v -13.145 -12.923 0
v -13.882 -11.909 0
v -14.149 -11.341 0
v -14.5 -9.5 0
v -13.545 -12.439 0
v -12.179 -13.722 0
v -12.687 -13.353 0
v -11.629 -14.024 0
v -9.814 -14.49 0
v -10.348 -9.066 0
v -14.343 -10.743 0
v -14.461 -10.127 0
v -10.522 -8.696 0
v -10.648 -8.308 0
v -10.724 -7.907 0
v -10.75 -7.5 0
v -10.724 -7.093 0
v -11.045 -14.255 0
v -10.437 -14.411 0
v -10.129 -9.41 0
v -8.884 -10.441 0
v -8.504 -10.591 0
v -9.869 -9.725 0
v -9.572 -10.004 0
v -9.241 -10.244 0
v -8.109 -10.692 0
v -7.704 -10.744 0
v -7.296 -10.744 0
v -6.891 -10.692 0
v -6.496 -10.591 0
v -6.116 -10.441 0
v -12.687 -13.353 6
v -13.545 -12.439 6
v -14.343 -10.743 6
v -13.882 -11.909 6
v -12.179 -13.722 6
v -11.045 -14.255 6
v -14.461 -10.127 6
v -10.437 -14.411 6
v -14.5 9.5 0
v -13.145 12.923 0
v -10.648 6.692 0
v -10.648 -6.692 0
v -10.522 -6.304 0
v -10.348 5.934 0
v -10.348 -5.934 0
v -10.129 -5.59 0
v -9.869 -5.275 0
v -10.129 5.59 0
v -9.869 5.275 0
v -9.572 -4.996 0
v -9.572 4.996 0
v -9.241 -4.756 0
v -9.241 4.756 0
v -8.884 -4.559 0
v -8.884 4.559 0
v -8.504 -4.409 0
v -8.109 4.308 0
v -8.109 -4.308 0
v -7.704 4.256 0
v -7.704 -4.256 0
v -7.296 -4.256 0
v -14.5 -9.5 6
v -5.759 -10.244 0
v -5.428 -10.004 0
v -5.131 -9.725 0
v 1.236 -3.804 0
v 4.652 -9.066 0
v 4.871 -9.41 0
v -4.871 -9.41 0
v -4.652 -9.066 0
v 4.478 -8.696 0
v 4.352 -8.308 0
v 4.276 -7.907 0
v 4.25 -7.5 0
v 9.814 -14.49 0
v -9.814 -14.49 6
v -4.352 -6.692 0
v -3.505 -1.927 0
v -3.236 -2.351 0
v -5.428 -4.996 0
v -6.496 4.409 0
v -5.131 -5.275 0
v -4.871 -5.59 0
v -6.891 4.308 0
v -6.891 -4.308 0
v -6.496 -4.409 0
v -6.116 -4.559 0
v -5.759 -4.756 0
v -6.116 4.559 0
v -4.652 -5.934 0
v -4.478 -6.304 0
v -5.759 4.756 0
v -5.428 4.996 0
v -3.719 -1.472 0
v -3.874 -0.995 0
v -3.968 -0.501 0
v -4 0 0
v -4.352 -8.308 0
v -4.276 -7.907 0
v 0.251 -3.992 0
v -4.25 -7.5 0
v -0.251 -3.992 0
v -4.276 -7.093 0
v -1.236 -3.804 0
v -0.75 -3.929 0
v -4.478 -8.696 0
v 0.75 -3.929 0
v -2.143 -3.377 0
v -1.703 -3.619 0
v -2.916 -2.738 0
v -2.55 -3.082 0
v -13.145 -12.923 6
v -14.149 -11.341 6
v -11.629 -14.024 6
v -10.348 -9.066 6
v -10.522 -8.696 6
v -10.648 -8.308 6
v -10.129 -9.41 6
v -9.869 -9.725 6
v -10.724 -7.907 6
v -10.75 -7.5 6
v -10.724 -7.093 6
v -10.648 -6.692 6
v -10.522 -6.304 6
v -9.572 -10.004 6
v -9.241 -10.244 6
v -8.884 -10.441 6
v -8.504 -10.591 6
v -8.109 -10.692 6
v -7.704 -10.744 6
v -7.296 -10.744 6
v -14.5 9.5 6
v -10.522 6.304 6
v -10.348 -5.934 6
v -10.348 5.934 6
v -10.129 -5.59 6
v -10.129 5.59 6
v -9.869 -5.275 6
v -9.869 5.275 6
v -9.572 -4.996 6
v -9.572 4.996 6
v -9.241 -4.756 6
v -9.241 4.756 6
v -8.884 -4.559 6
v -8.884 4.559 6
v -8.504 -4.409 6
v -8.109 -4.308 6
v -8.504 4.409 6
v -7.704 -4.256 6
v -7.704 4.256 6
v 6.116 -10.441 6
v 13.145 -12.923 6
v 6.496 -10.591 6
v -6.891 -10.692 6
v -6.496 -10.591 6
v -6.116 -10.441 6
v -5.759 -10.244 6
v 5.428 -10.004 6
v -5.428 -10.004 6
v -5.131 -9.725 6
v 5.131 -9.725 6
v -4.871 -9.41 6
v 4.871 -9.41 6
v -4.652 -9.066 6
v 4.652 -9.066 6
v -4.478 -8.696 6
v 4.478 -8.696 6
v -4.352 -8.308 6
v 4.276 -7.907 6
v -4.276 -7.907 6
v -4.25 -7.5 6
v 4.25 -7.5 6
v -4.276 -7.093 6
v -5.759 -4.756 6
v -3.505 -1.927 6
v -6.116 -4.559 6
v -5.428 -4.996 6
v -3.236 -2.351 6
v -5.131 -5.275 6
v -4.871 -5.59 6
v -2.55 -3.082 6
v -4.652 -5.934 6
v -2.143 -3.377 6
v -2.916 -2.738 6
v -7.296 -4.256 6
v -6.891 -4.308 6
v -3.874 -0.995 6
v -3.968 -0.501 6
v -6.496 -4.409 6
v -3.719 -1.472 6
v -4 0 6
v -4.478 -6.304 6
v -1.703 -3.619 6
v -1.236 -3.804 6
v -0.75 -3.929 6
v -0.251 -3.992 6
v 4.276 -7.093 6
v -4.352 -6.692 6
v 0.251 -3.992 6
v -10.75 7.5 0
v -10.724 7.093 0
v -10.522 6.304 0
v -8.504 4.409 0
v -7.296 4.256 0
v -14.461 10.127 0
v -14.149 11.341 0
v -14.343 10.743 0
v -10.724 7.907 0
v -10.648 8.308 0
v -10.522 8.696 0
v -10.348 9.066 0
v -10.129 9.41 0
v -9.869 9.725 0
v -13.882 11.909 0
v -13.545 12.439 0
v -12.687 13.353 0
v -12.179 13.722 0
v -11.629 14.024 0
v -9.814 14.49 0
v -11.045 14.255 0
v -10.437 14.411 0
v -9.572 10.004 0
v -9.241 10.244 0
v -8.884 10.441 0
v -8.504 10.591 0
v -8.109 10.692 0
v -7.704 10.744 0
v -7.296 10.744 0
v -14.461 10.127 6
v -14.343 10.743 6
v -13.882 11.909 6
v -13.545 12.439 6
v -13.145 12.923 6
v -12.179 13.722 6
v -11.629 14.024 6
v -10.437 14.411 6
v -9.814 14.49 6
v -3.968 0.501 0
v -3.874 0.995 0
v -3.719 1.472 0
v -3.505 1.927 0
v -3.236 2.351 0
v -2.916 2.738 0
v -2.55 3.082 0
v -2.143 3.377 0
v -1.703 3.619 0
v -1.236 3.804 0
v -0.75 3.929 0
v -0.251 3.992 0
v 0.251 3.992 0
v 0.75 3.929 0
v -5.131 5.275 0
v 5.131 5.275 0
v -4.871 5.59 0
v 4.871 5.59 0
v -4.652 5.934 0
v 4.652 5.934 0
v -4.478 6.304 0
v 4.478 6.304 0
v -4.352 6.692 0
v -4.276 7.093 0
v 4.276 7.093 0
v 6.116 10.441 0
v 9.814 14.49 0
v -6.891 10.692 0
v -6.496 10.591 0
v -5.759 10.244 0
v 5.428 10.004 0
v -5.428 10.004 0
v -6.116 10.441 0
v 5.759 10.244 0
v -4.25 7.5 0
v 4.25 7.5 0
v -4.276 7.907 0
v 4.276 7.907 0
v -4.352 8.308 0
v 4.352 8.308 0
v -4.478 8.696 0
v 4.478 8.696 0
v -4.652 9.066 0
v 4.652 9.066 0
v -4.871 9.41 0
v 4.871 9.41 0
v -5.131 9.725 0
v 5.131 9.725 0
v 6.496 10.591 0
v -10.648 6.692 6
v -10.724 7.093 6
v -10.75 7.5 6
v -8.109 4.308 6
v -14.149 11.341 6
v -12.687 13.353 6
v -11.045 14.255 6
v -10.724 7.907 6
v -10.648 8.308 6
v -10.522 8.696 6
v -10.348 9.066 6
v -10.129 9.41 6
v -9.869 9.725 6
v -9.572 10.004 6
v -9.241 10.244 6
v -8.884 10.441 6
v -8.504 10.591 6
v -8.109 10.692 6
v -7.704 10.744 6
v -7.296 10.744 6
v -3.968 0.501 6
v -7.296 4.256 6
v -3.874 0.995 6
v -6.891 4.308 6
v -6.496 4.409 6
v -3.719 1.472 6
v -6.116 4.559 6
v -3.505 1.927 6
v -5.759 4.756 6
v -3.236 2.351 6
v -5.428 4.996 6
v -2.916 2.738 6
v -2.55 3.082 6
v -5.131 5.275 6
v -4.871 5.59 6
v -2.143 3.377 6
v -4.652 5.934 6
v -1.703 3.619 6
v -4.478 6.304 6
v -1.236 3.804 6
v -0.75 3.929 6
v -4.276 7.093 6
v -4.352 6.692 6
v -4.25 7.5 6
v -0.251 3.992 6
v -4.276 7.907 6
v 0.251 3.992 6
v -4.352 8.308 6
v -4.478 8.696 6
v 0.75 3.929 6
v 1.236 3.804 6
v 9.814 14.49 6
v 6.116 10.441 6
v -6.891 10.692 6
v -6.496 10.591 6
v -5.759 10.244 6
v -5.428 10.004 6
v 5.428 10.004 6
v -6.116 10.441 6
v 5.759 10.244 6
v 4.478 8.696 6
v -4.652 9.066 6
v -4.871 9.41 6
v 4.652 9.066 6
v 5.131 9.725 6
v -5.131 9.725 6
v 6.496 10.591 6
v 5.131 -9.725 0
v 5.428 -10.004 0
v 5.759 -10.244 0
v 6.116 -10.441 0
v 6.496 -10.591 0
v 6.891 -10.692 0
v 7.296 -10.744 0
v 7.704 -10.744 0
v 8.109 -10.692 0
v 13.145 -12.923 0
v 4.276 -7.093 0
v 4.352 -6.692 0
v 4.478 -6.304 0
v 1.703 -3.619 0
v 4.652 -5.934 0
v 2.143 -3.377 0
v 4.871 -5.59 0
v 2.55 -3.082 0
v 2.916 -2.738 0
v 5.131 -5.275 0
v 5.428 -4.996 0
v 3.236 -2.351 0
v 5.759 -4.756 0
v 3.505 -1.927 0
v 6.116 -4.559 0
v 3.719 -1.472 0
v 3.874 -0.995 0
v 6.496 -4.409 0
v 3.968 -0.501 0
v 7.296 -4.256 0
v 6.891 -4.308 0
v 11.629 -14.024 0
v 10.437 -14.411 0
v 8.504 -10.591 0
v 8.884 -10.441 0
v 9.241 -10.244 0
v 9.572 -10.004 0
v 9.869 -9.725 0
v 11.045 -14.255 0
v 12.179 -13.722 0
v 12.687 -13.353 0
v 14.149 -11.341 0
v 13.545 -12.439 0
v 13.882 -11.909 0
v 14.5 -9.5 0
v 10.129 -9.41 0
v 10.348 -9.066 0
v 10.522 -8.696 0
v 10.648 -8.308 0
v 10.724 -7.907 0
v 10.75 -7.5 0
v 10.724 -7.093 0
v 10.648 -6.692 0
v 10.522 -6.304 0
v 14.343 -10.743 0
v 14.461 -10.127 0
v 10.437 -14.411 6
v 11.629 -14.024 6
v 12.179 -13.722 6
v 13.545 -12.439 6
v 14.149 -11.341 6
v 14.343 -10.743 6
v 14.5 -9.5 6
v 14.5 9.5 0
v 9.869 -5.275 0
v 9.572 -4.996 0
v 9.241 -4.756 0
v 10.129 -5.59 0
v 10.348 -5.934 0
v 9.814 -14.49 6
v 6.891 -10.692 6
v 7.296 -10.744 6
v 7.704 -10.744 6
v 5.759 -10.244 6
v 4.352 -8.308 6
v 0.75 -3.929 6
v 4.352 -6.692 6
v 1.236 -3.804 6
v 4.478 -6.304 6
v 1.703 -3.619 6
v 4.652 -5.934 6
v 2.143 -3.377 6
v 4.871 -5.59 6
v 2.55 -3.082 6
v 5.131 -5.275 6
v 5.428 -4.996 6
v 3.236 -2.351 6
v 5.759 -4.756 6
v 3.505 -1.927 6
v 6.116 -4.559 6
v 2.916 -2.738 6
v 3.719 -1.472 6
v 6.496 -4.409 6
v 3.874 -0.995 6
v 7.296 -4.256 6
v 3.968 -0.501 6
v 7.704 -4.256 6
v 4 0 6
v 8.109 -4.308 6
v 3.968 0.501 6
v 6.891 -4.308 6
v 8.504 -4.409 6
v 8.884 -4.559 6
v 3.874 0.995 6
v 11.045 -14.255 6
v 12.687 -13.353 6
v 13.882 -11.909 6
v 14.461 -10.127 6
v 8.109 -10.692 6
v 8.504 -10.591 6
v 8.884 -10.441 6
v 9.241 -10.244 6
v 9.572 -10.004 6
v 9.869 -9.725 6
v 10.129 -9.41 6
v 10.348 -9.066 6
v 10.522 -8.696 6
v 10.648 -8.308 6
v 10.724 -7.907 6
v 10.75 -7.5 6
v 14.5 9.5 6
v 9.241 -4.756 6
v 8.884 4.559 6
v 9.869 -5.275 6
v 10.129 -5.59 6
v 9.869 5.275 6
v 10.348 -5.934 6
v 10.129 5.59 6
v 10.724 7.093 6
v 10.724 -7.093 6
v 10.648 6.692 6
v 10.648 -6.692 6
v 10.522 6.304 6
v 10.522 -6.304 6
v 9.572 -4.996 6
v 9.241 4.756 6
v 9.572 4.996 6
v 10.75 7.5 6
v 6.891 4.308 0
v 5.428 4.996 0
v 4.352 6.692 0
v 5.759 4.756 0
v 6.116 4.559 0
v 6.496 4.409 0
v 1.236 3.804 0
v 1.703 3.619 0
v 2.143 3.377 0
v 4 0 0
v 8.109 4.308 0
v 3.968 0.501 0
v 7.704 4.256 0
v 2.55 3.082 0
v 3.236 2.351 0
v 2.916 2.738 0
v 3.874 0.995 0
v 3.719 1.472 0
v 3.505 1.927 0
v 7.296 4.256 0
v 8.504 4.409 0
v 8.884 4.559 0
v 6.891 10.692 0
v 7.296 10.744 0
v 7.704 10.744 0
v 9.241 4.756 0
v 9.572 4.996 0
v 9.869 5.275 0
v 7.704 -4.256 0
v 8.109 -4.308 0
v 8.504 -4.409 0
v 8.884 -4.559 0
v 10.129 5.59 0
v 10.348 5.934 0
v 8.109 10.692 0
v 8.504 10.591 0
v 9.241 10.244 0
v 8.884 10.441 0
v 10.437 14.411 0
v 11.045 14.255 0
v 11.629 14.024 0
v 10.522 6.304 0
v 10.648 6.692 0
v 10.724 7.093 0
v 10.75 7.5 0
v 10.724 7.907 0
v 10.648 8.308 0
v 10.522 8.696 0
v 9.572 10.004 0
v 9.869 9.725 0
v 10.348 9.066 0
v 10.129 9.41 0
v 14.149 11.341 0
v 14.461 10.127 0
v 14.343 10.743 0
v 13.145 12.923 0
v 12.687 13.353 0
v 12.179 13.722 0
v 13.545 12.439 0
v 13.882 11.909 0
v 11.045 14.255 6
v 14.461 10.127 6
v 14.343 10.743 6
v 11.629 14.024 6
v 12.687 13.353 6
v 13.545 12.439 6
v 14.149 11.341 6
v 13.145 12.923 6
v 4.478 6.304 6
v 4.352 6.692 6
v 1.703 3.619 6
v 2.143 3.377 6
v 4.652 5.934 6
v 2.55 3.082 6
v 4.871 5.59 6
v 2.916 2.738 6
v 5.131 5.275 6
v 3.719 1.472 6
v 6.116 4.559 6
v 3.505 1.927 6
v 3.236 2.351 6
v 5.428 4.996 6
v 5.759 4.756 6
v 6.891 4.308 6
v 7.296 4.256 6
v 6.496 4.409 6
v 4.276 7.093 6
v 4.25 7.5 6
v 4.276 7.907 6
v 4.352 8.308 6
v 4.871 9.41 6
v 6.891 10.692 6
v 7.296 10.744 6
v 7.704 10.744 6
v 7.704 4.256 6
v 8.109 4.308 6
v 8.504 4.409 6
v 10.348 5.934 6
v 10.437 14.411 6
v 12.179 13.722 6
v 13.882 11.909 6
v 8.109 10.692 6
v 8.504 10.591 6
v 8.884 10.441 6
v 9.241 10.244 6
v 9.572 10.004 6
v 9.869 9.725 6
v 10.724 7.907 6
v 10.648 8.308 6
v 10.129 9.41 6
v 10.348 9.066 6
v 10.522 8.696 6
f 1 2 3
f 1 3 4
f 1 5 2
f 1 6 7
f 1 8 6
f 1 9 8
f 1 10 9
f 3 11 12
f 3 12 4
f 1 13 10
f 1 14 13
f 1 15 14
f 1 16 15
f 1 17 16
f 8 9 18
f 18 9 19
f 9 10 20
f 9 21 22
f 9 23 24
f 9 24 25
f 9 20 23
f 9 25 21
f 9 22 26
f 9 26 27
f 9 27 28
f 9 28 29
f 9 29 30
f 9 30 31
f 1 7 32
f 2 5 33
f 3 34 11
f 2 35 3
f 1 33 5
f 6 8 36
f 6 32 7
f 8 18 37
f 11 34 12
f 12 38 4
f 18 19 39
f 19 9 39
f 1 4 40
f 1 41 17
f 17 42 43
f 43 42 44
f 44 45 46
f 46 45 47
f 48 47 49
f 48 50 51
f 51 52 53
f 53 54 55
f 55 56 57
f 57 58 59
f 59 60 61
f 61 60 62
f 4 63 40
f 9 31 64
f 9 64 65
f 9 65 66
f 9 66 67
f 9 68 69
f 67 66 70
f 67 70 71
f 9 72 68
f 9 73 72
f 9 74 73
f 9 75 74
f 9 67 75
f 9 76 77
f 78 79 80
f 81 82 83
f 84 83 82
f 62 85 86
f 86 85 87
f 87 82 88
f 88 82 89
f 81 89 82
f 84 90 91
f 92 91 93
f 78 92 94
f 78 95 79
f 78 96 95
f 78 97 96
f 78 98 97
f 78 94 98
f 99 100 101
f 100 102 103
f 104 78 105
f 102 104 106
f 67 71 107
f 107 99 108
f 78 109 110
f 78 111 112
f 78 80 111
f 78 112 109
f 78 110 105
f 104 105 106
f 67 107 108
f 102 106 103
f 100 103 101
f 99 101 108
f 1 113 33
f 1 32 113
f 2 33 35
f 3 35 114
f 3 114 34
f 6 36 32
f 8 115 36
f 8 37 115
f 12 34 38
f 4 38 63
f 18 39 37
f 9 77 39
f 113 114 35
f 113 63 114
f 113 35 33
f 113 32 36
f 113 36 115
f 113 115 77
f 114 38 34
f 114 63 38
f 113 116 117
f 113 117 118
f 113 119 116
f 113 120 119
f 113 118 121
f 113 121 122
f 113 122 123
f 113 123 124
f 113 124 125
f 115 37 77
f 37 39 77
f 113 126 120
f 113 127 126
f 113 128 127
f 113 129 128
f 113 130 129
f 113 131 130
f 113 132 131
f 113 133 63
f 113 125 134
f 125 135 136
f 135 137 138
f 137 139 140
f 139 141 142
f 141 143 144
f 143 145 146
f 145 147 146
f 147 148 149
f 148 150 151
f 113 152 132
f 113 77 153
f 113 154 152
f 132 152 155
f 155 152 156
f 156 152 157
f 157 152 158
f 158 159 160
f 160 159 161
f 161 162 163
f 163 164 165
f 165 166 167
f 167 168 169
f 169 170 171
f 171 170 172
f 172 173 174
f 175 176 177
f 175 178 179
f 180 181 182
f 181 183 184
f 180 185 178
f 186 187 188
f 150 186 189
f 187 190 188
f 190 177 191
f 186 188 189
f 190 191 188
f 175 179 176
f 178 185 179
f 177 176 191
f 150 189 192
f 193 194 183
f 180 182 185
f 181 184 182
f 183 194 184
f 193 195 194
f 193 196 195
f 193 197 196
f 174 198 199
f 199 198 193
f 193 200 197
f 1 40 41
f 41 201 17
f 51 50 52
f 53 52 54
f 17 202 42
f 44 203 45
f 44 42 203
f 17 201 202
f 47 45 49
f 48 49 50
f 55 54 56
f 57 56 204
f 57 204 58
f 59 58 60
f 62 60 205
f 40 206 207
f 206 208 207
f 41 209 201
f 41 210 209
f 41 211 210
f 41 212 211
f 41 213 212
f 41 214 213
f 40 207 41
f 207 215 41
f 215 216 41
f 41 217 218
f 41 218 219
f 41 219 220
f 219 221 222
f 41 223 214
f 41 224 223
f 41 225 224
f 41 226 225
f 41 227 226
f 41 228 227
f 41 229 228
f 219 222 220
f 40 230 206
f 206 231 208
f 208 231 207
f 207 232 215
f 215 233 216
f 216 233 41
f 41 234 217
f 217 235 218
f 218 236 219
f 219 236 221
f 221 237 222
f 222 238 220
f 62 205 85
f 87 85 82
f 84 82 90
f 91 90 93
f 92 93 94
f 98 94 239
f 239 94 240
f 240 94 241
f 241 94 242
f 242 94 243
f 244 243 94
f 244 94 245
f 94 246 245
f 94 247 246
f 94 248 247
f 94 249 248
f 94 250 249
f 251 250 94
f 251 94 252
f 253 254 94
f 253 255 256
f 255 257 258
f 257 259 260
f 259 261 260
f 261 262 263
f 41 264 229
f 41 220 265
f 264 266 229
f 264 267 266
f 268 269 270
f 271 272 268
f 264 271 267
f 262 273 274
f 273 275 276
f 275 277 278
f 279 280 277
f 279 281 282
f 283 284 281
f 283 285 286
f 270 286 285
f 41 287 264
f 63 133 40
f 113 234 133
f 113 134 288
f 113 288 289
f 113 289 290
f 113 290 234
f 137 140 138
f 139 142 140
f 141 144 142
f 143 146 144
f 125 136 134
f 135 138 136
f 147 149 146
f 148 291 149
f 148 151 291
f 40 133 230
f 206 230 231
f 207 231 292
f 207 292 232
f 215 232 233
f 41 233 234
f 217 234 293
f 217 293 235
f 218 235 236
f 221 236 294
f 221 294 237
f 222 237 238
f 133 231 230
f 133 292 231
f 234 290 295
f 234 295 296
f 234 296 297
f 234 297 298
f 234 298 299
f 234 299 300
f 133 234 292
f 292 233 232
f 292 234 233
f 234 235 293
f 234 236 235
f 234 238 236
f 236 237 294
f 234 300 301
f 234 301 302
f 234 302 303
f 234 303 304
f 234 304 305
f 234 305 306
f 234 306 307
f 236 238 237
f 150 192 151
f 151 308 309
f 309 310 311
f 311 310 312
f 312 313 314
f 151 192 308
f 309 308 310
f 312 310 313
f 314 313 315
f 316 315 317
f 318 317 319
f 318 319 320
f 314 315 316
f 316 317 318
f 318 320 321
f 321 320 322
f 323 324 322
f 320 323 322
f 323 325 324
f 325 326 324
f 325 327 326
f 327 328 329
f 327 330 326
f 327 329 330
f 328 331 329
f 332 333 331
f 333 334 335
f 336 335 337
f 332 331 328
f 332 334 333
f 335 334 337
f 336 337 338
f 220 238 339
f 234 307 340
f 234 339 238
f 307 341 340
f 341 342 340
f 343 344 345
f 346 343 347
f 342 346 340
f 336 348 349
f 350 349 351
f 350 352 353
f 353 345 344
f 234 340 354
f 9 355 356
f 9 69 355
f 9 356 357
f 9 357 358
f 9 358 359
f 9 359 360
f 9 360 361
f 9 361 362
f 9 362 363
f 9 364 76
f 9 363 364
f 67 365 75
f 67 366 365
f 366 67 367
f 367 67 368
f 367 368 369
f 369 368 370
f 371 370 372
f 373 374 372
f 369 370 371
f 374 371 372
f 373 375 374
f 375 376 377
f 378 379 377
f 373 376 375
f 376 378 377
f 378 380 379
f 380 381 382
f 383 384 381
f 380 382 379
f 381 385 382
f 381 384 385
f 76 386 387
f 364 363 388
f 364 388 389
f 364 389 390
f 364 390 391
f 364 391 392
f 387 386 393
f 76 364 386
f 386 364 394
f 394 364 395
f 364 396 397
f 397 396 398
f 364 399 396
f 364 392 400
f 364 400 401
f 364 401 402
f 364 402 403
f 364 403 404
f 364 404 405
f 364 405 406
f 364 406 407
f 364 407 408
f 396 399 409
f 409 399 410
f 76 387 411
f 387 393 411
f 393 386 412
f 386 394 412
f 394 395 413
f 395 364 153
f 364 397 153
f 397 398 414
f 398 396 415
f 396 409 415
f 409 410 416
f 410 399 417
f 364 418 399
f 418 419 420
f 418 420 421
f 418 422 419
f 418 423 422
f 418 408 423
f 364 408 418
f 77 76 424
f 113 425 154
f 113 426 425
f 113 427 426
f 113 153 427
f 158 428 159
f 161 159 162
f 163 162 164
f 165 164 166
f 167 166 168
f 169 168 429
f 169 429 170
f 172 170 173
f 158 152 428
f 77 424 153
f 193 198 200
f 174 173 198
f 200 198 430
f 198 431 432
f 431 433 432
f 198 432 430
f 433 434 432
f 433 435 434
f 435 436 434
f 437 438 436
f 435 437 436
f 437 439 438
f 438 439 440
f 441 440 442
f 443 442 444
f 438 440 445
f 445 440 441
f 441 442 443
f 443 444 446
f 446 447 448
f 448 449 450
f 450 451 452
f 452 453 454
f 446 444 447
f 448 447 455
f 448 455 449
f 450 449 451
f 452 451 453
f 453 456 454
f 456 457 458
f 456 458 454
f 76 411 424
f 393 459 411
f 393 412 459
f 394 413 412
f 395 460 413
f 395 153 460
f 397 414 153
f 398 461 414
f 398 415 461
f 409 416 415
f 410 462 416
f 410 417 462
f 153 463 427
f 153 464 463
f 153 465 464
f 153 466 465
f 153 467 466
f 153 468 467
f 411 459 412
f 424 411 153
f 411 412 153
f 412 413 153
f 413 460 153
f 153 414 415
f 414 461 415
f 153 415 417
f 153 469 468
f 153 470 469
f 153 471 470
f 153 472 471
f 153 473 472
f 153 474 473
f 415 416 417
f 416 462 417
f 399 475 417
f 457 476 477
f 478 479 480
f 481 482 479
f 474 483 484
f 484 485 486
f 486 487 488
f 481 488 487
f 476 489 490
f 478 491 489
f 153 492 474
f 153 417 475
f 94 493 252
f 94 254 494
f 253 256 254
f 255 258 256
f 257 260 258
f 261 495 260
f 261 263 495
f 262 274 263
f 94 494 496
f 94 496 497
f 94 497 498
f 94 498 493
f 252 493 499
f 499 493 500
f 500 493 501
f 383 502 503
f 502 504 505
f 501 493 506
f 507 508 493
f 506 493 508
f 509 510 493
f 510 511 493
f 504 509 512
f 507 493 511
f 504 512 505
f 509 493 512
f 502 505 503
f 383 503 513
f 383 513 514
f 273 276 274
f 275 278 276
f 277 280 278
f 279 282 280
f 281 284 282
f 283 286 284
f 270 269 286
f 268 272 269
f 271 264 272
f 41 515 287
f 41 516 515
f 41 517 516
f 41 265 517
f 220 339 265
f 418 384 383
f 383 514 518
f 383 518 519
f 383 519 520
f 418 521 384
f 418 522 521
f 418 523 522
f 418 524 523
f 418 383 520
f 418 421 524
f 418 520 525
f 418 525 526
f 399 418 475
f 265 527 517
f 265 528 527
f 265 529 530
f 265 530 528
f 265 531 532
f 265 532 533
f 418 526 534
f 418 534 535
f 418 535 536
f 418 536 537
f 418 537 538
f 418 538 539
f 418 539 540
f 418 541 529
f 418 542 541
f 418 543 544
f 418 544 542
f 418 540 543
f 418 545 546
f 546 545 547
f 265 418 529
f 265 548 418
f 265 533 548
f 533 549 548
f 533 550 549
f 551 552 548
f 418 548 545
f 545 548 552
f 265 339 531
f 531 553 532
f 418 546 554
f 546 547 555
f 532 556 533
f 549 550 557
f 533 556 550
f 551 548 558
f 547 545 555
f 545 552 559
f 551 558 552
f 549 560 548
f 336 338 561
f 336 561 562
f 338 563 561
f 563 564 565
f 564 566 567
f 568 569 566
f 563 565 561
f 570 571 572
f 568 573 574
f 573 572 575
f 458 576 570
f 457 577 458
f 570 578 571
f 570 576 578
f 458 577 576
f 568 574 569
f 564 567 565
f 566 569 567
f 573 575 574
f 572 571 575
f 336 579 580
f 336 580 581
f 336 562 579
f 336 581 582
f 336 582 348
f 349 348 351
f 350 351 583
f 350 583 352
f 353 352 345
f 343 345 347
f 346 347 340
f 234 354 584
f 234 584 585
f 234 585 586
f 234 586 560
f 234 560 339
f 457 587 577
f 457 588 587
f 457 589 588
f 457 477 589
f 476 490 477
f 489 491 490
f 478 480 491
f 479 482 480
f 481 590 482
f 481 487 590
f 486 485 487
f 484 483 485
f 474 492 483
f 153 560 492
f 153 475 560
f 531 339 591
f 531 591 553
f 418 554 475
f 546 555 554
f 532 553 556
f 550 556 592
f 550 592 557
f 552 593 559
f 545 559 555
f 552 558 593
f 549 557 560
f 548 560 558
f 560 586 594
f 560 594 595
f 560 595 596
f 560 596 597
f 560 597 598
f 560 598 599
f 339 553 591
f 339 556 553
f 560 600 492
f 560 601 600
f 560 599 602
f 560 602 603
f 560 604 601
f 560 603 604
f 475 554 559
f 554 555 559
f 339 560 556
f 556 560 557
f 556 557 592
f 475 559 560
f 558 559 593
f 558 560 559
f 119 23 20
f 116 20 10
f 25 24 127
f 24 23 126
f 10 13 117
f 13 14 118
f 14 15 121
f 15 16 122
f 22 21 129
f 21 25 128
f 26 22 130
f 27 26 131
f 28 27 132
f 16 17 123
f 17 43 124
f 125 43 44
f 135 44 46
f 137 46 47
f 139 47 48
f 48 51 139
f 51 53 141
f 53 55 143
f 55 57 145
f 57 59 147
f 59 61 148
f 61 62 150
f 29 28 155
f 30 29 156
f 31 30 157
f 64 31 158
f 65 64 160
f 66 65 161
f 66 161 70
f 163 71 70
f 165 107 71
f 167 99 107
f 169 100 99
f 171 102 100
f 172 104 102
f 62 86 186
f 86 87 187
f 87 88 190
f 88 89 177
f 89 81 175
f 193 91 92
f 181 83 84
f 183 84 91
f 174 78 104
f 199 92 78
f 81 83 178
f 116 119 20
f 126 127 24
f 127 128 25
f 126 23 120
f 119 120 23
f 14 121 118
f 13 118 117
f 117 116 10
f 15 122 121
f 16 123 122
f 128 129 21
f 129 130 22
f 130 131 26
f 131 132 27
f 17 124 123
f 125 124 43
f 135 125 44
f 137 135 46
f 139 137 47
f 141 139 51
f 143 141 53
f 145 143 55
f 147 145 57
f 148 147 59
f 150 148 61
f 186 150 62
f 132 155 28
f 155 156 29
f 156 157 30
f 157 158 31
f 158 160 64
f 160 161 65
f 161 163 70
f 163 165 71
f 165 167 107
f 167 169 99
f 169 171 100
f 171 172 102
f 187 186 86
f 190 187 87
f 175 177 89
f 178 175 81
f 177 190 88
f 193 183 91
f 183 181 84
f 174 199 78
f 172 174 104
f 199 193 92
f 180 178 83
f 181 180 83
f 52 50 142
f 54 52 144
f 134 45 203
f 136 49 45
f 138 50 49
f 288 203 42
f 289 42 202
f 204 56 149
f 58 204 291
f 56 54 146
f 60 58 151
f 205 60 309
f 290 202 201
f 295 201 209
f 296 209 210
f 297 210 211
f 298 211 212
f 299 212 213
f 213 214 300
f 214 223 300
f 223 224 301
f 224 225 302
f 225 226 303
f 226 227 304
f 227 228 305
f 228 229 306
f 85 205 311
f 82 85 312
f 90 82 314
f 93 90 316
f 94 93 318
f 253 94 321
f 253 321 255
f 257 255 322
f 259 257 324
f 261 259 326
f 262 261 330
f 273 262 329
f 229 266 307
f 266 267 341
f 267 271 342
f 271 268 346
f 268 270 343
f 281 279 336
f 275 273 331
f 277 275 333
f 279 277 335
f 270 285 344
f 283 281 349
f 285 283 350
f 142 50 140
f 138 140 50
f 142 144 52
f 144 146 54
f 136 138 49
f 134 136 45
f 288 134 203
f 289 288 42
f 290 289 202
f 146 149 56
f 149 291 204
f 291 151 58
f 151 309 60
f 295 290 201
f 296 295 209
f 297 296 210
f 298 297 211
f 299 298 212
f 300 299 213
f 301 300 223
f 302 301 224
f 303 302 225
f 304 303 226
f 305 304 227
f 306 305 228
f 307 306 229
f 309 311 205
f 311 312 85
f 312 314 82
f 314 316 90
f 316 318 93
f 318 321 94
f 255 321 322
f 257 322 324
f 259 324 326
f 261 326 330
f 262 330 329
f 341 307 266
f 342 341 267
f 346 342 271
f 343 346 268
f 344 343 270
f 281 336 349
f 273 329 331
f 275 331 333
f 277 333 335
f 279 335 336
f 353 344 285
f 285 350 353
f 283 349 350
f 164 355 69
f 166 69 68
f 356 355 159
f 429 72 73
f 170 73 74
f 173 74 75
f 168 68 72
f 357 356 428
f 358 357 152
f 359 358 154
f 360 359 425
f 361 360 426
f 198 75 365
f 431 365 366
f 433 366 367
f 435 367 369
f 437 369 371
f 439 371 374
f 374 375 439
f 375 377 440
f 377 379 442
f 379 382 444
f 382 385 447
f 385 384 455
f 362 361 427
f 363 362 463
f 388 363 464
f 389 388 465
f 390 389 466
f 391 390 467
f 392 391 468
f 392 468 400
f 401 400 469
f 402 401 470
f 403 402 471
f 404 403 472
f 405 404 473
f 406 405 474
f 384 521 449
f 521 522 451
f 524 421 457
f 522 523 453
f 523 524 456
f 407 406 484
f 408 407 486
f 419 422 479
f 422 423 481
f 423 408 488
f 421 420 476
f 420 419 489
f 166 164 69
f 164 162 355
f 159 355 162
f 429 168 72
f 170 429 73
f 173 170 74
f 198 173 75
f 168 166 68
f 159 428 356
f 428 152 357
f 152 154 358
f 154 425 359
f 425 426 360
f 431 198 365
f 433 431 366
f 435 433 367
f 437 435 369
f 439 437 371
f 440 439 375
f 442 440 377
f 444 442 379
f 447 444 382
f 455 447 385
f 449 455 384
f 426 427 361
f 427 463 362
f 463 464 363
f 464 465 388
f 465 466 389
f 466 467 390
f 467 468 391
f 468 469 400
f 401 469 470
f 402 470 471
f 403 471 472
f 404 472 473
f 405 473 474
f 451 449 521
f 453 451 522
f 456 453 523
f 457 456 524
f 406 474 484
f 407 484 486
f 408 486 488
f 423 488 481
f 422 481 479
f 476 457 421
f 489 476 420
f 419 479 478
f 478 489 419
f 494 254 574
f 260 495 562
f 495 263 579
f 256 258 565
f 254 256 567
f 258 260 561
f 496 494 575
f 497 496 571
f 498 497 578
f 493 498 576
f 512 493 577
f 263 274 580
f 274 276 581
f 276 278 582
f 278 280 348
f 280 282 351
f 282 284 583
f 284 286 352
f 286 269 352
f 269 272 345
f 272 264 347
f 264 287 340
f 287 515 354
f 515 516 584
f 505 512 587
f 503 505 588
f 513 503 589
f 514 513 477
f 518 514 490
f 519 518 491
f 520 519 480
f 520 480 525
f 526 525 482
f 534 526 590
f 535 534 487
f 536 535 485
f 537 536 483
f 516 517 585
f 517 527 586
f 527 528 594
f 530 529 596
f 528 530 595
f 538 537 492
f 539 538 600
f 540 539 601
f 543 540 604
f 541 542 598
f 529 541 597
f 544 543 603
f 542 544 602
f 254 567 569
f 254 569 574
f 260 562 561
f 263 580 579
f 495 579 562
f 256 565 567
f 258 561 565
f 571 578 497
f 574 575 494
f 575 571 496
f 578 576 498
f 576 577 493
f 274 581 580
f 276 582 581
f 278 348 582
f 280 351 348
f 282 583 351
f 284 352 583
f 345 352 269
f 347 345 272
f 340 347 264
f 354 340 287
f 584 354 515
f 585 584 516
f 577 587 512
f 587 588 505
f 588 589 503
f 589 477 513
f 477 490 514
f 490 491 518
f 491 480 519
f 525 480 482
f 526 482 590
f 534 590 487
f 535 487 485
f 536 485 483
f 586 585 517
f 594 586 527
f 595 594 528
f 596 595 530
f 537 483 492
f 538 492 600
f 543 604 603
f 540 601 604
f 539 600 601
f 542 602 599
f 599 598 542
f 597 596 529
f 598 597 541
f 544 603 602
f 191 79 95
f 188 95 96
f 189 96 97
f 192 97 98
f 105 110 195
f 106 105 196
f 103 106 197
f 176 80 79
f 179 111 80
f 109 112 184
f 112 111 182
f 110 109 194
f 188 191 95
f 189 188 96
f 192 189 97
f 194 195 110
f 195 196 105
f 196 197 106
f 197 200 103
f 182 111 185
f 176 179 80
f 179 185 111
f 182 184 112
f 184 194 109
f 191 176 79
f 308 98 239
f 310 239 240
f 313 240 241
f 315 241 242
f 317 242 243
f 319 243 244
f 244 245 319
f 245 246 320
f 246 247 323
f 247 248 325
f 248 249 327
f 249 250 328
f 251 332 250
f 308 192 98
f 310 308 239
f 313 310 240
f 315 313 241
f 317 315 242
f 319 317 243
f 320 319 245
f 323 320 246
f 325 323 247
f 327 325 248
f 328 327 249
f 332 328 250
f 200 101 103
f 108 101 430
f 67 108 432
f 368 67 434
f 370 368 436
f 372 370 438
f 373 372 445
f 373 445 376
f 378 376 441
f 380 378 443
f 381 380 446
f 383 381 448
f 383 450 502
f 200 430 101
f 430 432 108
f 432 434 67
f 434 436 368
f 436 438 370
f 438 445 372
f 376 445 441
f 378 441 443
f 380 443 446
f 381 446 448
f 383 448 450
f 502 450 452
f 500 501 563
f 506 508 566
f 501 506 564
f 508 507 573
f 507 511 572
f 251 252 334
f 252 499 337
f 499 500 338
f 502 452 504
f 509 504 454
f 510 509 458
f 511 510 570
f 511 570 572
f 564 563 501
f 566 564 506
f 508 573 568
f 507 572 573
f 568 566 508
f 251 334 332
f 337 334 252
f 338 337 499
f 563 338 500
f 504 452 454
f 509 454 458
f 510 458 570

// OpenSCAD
$fn = 50;

difference() {
	union() {
		hull() {
			translate(v = [-9.5, 9.5, 0]) {
				cylinder(h = 6, r = 5);
			}
			translate(v = [9.5, 9.5, 0]) {
				cylinder(h = 6, r = 5);
			}
			translate(v = [-9.5, -9.5, 0]) {
				cylinder(h = 6, r = 5);
			}
			translate(v = [9.5, -9.5, 0]) {
				cylinder(h = 6, r = 5);
			}
		}
	}
	union() {
		translate(v = [-7.5, -7.5, 0]) {
			cylinder(h = 6, r = 3.25);
		}
		translate(v = [-7.5, 7.5, 0]) {
			cylinder(h = 6, r = 3.25);
		}
		translate(v = [7.5, -7.5, 0]) {
			cylinder(h = 6, r = 3.25);
		}
		translate(v = [7.5, 7.5, 0]) {
			cylinder(h = 6, r = 3.25);
		}
		cylinder(h = 6, r = 4.0);
	}
}
